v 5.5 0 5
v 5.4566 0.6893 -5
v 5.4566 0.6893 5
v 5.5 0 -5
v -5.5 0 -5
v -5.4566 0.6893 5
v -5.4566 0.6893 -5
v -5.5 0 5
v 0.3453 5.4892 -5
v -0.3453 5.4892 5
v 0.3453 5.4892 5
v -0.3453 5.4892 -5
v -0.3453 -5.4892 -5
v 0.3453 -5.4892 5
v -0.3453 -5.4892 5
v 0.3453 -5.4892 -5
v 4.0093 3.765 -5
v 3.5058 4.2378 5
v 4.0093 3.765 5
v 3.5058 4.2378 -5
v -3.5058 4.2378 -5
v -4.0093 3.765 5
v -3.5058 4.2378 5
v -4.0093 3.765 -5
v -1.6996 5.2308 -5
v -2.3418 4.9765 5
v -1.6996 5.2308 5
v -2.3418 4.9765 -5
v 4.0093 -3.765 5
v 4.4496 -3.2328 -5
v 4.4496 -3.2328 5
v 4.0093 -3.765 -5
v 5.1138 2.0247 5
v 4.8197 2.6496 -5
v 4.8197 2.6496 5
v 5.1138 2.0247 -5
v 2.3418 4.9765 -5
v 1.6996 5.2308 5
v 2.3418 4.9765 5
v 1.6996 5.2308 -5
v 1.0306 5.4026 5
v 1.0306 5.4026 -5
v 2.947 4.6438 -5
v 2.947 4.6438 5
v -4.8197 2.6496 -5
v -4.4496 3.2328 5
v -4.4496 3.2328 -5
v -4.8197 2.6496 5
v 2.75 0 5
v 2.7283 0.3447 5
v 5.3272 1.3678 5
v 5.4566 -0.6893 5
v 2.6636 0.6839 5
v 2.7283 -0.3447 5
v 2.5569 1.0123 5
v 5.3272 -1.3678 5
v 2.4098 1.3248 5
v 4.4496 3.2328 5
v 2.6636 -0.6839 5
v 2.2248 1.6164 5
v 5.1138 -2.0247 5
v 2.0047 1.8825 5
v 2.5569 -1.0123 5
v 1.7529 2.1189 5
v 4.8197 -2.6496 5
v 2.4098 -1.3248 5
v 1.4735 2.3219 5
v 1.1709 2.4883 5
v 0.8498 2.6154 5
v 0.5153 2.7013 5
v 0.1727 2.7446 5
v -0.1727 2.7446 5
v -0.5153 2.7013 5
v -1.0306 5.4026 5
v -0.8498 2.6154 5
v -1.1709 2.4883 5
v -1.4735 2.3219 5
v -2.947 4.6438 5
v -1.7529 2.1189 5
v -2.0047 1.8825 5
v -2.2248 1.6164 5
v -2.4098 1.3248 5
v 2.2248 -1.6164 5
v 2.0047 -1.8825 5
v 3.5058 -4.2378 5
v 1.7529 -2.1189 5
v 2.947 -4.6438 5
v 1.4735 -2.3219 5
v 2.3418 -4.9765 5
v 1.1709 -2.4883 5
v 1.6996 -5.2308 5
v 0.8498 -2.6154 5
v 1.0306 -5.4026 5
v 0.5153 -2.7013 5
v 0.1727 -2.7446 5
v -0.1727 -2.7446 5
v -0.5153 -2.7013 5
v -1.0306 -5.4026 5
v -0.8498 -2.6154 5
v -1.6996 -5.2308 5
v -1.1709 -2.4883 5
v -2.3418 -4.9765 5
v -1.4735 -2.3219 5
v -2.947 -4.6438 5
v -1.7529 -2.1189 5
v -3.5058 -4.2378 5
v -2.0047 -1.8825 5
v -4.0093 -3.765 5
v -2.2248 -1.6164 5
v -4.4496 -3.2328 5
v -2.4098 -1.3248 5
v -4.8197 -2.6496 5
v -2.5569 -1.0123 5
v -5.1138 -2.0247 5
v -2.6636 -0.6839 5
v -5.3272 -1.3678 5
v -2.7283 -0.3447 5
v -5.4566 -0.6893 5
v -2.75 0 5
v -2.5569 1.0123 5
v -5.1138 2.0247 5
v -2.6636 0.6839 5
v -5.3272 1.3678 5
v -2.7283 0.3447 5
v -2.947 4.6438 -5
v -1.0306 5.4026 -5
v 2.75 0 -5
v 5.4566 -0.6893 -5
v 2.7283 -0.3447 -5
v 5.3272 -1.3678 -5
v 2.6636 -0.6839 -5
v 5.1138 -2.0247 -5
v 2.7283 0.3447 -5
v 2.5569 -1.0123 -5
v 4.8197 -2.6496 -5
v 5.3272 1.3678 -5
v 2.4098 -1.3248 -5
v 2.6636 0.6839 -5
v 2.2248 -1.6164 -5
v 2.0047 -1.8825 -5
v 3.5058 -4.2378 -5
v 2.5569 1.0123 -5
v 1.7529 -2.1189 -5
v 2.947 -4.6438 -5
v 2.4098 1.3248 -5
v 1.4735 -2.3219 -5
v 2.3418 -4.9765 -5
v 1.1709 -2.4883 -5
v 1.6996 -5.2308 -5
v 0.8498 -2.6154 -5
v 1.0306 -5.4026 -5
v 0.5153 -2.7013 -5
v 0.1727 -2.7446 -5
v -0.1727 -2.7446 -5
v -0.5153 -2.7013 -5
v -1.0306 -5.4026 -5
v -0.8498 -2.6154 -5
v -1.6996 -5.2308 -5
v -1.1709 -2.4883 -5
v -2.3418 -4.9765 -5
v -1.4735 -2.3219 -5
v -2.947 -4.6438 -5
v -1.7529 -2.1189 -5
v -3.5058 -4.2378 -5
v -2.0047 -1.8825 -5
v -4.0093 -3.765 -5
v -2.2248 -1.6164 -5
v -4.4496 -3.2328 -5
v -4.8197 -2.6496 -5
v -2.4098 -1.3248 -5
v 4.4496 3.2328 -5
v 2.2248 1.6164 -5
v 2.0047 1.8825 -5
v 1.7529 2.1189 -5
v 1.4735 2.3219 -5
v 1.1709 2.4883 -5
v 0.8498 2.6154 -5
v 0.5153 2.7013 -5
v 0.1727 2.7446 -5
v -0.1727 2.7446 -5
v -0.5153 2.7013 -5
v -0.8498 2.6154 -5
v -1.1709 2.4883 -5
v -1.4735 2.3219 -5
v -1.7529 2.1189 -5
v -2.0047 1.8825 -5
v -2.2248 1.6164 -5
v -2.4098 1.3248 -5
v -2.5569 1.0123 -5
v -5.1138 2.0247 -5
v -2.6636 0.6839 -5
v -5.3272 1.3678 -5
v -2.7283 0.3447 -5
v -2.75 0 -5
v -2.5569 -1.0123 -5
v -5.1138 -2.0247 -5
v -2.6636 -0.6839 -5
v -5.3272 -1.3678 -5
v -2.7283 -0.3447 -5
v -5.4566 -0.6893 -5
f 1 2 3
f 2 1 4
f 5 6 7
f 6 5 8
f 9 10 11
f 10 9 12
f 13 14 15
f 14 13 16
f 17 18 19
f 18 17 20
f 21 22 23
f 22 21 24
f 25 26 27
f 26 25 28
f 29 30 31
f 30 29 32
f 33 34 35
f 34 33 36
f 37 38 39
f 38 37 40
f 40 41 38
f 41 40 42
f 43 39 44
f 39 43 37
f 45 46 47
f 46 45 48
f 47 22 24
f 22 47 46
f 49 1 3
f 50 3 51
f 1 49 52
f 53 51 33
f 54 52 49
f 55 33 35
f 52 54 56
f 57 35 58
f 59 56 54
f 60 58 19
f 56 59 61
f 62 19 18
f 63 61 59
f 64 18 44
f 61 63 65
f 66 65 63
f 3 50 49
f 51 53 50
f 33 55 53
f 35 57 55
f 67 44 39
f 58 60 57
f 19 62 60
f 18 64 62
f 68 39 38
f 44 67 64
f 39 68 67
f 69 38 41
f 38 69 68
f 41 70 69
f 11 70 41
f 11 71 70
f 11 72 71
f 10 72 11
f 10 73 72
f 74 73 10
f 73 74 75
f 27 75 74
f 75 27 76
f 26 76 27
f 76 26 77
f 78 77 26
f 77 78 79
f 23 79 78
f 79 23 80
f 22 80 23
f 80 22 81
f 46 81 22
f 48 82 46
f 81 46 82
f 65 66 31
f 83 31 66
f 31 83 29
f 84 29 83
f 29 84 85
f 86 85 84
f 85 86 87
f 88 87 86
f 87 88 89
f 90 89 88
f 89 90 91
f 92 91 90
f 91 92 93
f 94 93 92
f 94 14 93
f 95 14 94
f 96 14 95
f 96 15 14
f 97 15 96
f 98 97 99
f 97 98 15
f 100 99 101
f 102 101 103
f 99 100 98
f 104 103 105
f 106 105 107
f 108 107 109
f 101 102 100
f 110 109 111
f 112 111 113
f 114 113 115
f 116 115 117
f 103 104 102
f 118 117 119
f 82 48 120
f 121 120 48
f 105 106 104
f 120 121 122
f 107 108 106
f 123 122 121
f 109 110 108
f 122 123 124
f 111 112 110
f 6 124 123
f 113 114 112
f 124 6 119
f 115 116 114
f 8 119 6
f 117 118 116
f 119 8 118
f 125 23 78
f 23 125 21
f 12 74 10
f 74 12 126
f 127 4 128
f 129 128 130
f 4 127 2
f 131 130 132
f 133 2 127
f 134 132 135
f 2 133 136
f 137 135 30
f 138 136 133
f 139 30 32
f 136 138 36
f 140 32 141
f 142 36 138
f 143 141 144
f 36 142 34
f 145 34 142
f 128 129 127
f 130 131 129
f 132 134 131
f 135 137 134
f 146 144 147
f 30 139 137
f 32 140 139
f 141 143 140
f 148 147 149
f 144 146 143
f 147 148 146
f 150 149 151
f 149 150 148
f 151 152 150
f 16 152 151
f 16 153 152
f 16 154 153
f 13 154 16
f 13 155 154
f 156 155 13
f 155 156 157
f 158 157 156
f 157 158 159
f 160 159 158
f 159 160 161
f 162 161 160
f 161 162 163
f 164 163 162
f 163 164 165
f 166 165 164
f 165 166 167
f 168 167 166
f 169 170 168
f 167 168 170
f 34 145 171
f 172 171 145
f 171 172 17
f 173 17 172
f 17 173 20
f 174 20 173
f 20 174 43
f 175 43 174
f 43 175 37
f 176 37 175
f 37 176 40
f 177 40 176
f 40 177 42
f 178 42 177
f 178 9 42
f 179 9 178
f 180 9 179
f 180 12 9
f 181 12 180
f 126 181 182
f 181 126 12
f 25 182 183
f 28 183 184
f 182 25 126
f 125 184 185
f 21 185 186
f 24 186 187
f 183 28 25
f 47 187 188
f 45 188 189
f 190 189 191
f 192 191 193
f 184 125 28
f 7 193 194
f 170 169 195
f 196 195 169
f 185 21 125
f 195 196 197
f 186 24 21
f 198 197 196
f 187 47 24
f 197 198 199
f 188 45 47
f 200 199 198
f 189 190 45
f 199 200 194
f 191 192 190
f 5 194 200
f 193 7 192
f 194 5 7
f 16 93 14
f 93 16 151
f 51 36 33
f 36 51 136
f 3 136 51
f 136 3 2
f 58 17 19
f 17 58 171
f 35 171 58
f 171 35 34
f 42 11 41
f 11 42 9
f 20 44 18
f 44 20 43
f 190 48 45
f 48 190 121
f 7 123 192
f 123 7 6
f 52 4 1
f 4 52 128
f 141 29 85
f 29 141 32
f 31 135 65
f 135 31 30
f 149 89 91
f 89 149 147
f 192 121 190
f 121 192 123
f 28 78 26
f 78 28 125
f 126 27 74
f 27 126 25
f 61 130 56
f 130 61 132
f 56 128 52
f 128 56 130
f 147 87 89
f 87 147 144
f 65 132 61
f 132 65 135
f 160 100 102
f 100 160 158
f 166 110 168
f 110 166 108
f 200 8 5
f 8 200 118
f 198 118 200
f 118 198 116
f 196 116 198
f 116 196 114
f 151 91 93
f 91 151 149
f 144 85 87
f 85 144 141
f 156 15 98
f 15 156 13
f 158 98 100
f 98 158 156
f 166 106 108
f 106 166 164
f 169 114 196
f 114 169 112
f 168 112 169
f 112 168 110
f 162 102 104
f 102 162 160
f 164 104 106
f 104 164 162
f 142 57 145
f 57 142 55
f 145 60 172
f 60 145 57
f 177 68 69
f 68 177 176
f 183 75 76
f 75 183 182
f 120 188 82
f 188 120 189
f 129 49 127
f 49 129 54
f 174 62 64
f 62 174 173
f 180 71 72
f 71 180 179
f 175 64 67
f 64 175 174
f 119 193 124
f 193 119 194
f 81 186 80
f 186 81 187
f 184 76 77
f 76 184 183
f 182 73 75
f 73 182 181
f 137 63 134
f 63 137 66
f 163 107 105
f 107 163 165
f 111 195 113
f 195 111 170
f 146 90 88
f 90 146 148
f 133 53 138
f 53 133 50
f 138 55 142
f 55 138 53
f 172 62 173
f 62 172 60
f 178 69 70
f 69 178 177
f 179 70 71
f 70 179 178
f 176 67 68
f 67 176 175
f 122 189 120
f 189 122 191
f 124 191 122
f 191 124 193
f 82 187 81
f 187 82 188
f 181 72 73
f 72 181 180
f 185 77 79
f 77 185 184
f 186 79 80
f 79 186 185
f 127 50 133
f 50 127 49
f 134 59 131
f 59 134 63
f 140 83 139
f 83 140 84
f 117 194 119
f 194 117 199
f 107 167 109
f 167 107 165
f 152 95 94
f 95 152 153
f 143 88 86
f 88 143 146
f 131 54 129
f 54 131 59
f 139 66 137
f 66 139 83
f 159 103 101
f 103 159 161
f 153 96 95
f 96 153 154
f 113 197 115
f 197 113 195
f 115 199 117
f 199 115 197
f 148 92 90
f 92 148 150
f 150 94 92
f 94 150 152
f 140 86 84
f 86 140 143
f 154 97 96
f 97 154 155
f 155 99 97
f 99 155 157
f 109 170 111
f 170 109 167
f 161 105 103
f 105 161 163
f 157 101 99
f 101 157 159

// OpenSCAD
$fn = 50;


difference() {
	union() {
		translate(v = [0, 0, -5.0000000000]) {
			cylinder(h = 10, r = 5.5000000000);
		}
	}
	union() {
		translate(v = [0, 0, -100.0000000000]) {
			cylinder(h = 200, r = 2.7500000000);
		}
	}
}
